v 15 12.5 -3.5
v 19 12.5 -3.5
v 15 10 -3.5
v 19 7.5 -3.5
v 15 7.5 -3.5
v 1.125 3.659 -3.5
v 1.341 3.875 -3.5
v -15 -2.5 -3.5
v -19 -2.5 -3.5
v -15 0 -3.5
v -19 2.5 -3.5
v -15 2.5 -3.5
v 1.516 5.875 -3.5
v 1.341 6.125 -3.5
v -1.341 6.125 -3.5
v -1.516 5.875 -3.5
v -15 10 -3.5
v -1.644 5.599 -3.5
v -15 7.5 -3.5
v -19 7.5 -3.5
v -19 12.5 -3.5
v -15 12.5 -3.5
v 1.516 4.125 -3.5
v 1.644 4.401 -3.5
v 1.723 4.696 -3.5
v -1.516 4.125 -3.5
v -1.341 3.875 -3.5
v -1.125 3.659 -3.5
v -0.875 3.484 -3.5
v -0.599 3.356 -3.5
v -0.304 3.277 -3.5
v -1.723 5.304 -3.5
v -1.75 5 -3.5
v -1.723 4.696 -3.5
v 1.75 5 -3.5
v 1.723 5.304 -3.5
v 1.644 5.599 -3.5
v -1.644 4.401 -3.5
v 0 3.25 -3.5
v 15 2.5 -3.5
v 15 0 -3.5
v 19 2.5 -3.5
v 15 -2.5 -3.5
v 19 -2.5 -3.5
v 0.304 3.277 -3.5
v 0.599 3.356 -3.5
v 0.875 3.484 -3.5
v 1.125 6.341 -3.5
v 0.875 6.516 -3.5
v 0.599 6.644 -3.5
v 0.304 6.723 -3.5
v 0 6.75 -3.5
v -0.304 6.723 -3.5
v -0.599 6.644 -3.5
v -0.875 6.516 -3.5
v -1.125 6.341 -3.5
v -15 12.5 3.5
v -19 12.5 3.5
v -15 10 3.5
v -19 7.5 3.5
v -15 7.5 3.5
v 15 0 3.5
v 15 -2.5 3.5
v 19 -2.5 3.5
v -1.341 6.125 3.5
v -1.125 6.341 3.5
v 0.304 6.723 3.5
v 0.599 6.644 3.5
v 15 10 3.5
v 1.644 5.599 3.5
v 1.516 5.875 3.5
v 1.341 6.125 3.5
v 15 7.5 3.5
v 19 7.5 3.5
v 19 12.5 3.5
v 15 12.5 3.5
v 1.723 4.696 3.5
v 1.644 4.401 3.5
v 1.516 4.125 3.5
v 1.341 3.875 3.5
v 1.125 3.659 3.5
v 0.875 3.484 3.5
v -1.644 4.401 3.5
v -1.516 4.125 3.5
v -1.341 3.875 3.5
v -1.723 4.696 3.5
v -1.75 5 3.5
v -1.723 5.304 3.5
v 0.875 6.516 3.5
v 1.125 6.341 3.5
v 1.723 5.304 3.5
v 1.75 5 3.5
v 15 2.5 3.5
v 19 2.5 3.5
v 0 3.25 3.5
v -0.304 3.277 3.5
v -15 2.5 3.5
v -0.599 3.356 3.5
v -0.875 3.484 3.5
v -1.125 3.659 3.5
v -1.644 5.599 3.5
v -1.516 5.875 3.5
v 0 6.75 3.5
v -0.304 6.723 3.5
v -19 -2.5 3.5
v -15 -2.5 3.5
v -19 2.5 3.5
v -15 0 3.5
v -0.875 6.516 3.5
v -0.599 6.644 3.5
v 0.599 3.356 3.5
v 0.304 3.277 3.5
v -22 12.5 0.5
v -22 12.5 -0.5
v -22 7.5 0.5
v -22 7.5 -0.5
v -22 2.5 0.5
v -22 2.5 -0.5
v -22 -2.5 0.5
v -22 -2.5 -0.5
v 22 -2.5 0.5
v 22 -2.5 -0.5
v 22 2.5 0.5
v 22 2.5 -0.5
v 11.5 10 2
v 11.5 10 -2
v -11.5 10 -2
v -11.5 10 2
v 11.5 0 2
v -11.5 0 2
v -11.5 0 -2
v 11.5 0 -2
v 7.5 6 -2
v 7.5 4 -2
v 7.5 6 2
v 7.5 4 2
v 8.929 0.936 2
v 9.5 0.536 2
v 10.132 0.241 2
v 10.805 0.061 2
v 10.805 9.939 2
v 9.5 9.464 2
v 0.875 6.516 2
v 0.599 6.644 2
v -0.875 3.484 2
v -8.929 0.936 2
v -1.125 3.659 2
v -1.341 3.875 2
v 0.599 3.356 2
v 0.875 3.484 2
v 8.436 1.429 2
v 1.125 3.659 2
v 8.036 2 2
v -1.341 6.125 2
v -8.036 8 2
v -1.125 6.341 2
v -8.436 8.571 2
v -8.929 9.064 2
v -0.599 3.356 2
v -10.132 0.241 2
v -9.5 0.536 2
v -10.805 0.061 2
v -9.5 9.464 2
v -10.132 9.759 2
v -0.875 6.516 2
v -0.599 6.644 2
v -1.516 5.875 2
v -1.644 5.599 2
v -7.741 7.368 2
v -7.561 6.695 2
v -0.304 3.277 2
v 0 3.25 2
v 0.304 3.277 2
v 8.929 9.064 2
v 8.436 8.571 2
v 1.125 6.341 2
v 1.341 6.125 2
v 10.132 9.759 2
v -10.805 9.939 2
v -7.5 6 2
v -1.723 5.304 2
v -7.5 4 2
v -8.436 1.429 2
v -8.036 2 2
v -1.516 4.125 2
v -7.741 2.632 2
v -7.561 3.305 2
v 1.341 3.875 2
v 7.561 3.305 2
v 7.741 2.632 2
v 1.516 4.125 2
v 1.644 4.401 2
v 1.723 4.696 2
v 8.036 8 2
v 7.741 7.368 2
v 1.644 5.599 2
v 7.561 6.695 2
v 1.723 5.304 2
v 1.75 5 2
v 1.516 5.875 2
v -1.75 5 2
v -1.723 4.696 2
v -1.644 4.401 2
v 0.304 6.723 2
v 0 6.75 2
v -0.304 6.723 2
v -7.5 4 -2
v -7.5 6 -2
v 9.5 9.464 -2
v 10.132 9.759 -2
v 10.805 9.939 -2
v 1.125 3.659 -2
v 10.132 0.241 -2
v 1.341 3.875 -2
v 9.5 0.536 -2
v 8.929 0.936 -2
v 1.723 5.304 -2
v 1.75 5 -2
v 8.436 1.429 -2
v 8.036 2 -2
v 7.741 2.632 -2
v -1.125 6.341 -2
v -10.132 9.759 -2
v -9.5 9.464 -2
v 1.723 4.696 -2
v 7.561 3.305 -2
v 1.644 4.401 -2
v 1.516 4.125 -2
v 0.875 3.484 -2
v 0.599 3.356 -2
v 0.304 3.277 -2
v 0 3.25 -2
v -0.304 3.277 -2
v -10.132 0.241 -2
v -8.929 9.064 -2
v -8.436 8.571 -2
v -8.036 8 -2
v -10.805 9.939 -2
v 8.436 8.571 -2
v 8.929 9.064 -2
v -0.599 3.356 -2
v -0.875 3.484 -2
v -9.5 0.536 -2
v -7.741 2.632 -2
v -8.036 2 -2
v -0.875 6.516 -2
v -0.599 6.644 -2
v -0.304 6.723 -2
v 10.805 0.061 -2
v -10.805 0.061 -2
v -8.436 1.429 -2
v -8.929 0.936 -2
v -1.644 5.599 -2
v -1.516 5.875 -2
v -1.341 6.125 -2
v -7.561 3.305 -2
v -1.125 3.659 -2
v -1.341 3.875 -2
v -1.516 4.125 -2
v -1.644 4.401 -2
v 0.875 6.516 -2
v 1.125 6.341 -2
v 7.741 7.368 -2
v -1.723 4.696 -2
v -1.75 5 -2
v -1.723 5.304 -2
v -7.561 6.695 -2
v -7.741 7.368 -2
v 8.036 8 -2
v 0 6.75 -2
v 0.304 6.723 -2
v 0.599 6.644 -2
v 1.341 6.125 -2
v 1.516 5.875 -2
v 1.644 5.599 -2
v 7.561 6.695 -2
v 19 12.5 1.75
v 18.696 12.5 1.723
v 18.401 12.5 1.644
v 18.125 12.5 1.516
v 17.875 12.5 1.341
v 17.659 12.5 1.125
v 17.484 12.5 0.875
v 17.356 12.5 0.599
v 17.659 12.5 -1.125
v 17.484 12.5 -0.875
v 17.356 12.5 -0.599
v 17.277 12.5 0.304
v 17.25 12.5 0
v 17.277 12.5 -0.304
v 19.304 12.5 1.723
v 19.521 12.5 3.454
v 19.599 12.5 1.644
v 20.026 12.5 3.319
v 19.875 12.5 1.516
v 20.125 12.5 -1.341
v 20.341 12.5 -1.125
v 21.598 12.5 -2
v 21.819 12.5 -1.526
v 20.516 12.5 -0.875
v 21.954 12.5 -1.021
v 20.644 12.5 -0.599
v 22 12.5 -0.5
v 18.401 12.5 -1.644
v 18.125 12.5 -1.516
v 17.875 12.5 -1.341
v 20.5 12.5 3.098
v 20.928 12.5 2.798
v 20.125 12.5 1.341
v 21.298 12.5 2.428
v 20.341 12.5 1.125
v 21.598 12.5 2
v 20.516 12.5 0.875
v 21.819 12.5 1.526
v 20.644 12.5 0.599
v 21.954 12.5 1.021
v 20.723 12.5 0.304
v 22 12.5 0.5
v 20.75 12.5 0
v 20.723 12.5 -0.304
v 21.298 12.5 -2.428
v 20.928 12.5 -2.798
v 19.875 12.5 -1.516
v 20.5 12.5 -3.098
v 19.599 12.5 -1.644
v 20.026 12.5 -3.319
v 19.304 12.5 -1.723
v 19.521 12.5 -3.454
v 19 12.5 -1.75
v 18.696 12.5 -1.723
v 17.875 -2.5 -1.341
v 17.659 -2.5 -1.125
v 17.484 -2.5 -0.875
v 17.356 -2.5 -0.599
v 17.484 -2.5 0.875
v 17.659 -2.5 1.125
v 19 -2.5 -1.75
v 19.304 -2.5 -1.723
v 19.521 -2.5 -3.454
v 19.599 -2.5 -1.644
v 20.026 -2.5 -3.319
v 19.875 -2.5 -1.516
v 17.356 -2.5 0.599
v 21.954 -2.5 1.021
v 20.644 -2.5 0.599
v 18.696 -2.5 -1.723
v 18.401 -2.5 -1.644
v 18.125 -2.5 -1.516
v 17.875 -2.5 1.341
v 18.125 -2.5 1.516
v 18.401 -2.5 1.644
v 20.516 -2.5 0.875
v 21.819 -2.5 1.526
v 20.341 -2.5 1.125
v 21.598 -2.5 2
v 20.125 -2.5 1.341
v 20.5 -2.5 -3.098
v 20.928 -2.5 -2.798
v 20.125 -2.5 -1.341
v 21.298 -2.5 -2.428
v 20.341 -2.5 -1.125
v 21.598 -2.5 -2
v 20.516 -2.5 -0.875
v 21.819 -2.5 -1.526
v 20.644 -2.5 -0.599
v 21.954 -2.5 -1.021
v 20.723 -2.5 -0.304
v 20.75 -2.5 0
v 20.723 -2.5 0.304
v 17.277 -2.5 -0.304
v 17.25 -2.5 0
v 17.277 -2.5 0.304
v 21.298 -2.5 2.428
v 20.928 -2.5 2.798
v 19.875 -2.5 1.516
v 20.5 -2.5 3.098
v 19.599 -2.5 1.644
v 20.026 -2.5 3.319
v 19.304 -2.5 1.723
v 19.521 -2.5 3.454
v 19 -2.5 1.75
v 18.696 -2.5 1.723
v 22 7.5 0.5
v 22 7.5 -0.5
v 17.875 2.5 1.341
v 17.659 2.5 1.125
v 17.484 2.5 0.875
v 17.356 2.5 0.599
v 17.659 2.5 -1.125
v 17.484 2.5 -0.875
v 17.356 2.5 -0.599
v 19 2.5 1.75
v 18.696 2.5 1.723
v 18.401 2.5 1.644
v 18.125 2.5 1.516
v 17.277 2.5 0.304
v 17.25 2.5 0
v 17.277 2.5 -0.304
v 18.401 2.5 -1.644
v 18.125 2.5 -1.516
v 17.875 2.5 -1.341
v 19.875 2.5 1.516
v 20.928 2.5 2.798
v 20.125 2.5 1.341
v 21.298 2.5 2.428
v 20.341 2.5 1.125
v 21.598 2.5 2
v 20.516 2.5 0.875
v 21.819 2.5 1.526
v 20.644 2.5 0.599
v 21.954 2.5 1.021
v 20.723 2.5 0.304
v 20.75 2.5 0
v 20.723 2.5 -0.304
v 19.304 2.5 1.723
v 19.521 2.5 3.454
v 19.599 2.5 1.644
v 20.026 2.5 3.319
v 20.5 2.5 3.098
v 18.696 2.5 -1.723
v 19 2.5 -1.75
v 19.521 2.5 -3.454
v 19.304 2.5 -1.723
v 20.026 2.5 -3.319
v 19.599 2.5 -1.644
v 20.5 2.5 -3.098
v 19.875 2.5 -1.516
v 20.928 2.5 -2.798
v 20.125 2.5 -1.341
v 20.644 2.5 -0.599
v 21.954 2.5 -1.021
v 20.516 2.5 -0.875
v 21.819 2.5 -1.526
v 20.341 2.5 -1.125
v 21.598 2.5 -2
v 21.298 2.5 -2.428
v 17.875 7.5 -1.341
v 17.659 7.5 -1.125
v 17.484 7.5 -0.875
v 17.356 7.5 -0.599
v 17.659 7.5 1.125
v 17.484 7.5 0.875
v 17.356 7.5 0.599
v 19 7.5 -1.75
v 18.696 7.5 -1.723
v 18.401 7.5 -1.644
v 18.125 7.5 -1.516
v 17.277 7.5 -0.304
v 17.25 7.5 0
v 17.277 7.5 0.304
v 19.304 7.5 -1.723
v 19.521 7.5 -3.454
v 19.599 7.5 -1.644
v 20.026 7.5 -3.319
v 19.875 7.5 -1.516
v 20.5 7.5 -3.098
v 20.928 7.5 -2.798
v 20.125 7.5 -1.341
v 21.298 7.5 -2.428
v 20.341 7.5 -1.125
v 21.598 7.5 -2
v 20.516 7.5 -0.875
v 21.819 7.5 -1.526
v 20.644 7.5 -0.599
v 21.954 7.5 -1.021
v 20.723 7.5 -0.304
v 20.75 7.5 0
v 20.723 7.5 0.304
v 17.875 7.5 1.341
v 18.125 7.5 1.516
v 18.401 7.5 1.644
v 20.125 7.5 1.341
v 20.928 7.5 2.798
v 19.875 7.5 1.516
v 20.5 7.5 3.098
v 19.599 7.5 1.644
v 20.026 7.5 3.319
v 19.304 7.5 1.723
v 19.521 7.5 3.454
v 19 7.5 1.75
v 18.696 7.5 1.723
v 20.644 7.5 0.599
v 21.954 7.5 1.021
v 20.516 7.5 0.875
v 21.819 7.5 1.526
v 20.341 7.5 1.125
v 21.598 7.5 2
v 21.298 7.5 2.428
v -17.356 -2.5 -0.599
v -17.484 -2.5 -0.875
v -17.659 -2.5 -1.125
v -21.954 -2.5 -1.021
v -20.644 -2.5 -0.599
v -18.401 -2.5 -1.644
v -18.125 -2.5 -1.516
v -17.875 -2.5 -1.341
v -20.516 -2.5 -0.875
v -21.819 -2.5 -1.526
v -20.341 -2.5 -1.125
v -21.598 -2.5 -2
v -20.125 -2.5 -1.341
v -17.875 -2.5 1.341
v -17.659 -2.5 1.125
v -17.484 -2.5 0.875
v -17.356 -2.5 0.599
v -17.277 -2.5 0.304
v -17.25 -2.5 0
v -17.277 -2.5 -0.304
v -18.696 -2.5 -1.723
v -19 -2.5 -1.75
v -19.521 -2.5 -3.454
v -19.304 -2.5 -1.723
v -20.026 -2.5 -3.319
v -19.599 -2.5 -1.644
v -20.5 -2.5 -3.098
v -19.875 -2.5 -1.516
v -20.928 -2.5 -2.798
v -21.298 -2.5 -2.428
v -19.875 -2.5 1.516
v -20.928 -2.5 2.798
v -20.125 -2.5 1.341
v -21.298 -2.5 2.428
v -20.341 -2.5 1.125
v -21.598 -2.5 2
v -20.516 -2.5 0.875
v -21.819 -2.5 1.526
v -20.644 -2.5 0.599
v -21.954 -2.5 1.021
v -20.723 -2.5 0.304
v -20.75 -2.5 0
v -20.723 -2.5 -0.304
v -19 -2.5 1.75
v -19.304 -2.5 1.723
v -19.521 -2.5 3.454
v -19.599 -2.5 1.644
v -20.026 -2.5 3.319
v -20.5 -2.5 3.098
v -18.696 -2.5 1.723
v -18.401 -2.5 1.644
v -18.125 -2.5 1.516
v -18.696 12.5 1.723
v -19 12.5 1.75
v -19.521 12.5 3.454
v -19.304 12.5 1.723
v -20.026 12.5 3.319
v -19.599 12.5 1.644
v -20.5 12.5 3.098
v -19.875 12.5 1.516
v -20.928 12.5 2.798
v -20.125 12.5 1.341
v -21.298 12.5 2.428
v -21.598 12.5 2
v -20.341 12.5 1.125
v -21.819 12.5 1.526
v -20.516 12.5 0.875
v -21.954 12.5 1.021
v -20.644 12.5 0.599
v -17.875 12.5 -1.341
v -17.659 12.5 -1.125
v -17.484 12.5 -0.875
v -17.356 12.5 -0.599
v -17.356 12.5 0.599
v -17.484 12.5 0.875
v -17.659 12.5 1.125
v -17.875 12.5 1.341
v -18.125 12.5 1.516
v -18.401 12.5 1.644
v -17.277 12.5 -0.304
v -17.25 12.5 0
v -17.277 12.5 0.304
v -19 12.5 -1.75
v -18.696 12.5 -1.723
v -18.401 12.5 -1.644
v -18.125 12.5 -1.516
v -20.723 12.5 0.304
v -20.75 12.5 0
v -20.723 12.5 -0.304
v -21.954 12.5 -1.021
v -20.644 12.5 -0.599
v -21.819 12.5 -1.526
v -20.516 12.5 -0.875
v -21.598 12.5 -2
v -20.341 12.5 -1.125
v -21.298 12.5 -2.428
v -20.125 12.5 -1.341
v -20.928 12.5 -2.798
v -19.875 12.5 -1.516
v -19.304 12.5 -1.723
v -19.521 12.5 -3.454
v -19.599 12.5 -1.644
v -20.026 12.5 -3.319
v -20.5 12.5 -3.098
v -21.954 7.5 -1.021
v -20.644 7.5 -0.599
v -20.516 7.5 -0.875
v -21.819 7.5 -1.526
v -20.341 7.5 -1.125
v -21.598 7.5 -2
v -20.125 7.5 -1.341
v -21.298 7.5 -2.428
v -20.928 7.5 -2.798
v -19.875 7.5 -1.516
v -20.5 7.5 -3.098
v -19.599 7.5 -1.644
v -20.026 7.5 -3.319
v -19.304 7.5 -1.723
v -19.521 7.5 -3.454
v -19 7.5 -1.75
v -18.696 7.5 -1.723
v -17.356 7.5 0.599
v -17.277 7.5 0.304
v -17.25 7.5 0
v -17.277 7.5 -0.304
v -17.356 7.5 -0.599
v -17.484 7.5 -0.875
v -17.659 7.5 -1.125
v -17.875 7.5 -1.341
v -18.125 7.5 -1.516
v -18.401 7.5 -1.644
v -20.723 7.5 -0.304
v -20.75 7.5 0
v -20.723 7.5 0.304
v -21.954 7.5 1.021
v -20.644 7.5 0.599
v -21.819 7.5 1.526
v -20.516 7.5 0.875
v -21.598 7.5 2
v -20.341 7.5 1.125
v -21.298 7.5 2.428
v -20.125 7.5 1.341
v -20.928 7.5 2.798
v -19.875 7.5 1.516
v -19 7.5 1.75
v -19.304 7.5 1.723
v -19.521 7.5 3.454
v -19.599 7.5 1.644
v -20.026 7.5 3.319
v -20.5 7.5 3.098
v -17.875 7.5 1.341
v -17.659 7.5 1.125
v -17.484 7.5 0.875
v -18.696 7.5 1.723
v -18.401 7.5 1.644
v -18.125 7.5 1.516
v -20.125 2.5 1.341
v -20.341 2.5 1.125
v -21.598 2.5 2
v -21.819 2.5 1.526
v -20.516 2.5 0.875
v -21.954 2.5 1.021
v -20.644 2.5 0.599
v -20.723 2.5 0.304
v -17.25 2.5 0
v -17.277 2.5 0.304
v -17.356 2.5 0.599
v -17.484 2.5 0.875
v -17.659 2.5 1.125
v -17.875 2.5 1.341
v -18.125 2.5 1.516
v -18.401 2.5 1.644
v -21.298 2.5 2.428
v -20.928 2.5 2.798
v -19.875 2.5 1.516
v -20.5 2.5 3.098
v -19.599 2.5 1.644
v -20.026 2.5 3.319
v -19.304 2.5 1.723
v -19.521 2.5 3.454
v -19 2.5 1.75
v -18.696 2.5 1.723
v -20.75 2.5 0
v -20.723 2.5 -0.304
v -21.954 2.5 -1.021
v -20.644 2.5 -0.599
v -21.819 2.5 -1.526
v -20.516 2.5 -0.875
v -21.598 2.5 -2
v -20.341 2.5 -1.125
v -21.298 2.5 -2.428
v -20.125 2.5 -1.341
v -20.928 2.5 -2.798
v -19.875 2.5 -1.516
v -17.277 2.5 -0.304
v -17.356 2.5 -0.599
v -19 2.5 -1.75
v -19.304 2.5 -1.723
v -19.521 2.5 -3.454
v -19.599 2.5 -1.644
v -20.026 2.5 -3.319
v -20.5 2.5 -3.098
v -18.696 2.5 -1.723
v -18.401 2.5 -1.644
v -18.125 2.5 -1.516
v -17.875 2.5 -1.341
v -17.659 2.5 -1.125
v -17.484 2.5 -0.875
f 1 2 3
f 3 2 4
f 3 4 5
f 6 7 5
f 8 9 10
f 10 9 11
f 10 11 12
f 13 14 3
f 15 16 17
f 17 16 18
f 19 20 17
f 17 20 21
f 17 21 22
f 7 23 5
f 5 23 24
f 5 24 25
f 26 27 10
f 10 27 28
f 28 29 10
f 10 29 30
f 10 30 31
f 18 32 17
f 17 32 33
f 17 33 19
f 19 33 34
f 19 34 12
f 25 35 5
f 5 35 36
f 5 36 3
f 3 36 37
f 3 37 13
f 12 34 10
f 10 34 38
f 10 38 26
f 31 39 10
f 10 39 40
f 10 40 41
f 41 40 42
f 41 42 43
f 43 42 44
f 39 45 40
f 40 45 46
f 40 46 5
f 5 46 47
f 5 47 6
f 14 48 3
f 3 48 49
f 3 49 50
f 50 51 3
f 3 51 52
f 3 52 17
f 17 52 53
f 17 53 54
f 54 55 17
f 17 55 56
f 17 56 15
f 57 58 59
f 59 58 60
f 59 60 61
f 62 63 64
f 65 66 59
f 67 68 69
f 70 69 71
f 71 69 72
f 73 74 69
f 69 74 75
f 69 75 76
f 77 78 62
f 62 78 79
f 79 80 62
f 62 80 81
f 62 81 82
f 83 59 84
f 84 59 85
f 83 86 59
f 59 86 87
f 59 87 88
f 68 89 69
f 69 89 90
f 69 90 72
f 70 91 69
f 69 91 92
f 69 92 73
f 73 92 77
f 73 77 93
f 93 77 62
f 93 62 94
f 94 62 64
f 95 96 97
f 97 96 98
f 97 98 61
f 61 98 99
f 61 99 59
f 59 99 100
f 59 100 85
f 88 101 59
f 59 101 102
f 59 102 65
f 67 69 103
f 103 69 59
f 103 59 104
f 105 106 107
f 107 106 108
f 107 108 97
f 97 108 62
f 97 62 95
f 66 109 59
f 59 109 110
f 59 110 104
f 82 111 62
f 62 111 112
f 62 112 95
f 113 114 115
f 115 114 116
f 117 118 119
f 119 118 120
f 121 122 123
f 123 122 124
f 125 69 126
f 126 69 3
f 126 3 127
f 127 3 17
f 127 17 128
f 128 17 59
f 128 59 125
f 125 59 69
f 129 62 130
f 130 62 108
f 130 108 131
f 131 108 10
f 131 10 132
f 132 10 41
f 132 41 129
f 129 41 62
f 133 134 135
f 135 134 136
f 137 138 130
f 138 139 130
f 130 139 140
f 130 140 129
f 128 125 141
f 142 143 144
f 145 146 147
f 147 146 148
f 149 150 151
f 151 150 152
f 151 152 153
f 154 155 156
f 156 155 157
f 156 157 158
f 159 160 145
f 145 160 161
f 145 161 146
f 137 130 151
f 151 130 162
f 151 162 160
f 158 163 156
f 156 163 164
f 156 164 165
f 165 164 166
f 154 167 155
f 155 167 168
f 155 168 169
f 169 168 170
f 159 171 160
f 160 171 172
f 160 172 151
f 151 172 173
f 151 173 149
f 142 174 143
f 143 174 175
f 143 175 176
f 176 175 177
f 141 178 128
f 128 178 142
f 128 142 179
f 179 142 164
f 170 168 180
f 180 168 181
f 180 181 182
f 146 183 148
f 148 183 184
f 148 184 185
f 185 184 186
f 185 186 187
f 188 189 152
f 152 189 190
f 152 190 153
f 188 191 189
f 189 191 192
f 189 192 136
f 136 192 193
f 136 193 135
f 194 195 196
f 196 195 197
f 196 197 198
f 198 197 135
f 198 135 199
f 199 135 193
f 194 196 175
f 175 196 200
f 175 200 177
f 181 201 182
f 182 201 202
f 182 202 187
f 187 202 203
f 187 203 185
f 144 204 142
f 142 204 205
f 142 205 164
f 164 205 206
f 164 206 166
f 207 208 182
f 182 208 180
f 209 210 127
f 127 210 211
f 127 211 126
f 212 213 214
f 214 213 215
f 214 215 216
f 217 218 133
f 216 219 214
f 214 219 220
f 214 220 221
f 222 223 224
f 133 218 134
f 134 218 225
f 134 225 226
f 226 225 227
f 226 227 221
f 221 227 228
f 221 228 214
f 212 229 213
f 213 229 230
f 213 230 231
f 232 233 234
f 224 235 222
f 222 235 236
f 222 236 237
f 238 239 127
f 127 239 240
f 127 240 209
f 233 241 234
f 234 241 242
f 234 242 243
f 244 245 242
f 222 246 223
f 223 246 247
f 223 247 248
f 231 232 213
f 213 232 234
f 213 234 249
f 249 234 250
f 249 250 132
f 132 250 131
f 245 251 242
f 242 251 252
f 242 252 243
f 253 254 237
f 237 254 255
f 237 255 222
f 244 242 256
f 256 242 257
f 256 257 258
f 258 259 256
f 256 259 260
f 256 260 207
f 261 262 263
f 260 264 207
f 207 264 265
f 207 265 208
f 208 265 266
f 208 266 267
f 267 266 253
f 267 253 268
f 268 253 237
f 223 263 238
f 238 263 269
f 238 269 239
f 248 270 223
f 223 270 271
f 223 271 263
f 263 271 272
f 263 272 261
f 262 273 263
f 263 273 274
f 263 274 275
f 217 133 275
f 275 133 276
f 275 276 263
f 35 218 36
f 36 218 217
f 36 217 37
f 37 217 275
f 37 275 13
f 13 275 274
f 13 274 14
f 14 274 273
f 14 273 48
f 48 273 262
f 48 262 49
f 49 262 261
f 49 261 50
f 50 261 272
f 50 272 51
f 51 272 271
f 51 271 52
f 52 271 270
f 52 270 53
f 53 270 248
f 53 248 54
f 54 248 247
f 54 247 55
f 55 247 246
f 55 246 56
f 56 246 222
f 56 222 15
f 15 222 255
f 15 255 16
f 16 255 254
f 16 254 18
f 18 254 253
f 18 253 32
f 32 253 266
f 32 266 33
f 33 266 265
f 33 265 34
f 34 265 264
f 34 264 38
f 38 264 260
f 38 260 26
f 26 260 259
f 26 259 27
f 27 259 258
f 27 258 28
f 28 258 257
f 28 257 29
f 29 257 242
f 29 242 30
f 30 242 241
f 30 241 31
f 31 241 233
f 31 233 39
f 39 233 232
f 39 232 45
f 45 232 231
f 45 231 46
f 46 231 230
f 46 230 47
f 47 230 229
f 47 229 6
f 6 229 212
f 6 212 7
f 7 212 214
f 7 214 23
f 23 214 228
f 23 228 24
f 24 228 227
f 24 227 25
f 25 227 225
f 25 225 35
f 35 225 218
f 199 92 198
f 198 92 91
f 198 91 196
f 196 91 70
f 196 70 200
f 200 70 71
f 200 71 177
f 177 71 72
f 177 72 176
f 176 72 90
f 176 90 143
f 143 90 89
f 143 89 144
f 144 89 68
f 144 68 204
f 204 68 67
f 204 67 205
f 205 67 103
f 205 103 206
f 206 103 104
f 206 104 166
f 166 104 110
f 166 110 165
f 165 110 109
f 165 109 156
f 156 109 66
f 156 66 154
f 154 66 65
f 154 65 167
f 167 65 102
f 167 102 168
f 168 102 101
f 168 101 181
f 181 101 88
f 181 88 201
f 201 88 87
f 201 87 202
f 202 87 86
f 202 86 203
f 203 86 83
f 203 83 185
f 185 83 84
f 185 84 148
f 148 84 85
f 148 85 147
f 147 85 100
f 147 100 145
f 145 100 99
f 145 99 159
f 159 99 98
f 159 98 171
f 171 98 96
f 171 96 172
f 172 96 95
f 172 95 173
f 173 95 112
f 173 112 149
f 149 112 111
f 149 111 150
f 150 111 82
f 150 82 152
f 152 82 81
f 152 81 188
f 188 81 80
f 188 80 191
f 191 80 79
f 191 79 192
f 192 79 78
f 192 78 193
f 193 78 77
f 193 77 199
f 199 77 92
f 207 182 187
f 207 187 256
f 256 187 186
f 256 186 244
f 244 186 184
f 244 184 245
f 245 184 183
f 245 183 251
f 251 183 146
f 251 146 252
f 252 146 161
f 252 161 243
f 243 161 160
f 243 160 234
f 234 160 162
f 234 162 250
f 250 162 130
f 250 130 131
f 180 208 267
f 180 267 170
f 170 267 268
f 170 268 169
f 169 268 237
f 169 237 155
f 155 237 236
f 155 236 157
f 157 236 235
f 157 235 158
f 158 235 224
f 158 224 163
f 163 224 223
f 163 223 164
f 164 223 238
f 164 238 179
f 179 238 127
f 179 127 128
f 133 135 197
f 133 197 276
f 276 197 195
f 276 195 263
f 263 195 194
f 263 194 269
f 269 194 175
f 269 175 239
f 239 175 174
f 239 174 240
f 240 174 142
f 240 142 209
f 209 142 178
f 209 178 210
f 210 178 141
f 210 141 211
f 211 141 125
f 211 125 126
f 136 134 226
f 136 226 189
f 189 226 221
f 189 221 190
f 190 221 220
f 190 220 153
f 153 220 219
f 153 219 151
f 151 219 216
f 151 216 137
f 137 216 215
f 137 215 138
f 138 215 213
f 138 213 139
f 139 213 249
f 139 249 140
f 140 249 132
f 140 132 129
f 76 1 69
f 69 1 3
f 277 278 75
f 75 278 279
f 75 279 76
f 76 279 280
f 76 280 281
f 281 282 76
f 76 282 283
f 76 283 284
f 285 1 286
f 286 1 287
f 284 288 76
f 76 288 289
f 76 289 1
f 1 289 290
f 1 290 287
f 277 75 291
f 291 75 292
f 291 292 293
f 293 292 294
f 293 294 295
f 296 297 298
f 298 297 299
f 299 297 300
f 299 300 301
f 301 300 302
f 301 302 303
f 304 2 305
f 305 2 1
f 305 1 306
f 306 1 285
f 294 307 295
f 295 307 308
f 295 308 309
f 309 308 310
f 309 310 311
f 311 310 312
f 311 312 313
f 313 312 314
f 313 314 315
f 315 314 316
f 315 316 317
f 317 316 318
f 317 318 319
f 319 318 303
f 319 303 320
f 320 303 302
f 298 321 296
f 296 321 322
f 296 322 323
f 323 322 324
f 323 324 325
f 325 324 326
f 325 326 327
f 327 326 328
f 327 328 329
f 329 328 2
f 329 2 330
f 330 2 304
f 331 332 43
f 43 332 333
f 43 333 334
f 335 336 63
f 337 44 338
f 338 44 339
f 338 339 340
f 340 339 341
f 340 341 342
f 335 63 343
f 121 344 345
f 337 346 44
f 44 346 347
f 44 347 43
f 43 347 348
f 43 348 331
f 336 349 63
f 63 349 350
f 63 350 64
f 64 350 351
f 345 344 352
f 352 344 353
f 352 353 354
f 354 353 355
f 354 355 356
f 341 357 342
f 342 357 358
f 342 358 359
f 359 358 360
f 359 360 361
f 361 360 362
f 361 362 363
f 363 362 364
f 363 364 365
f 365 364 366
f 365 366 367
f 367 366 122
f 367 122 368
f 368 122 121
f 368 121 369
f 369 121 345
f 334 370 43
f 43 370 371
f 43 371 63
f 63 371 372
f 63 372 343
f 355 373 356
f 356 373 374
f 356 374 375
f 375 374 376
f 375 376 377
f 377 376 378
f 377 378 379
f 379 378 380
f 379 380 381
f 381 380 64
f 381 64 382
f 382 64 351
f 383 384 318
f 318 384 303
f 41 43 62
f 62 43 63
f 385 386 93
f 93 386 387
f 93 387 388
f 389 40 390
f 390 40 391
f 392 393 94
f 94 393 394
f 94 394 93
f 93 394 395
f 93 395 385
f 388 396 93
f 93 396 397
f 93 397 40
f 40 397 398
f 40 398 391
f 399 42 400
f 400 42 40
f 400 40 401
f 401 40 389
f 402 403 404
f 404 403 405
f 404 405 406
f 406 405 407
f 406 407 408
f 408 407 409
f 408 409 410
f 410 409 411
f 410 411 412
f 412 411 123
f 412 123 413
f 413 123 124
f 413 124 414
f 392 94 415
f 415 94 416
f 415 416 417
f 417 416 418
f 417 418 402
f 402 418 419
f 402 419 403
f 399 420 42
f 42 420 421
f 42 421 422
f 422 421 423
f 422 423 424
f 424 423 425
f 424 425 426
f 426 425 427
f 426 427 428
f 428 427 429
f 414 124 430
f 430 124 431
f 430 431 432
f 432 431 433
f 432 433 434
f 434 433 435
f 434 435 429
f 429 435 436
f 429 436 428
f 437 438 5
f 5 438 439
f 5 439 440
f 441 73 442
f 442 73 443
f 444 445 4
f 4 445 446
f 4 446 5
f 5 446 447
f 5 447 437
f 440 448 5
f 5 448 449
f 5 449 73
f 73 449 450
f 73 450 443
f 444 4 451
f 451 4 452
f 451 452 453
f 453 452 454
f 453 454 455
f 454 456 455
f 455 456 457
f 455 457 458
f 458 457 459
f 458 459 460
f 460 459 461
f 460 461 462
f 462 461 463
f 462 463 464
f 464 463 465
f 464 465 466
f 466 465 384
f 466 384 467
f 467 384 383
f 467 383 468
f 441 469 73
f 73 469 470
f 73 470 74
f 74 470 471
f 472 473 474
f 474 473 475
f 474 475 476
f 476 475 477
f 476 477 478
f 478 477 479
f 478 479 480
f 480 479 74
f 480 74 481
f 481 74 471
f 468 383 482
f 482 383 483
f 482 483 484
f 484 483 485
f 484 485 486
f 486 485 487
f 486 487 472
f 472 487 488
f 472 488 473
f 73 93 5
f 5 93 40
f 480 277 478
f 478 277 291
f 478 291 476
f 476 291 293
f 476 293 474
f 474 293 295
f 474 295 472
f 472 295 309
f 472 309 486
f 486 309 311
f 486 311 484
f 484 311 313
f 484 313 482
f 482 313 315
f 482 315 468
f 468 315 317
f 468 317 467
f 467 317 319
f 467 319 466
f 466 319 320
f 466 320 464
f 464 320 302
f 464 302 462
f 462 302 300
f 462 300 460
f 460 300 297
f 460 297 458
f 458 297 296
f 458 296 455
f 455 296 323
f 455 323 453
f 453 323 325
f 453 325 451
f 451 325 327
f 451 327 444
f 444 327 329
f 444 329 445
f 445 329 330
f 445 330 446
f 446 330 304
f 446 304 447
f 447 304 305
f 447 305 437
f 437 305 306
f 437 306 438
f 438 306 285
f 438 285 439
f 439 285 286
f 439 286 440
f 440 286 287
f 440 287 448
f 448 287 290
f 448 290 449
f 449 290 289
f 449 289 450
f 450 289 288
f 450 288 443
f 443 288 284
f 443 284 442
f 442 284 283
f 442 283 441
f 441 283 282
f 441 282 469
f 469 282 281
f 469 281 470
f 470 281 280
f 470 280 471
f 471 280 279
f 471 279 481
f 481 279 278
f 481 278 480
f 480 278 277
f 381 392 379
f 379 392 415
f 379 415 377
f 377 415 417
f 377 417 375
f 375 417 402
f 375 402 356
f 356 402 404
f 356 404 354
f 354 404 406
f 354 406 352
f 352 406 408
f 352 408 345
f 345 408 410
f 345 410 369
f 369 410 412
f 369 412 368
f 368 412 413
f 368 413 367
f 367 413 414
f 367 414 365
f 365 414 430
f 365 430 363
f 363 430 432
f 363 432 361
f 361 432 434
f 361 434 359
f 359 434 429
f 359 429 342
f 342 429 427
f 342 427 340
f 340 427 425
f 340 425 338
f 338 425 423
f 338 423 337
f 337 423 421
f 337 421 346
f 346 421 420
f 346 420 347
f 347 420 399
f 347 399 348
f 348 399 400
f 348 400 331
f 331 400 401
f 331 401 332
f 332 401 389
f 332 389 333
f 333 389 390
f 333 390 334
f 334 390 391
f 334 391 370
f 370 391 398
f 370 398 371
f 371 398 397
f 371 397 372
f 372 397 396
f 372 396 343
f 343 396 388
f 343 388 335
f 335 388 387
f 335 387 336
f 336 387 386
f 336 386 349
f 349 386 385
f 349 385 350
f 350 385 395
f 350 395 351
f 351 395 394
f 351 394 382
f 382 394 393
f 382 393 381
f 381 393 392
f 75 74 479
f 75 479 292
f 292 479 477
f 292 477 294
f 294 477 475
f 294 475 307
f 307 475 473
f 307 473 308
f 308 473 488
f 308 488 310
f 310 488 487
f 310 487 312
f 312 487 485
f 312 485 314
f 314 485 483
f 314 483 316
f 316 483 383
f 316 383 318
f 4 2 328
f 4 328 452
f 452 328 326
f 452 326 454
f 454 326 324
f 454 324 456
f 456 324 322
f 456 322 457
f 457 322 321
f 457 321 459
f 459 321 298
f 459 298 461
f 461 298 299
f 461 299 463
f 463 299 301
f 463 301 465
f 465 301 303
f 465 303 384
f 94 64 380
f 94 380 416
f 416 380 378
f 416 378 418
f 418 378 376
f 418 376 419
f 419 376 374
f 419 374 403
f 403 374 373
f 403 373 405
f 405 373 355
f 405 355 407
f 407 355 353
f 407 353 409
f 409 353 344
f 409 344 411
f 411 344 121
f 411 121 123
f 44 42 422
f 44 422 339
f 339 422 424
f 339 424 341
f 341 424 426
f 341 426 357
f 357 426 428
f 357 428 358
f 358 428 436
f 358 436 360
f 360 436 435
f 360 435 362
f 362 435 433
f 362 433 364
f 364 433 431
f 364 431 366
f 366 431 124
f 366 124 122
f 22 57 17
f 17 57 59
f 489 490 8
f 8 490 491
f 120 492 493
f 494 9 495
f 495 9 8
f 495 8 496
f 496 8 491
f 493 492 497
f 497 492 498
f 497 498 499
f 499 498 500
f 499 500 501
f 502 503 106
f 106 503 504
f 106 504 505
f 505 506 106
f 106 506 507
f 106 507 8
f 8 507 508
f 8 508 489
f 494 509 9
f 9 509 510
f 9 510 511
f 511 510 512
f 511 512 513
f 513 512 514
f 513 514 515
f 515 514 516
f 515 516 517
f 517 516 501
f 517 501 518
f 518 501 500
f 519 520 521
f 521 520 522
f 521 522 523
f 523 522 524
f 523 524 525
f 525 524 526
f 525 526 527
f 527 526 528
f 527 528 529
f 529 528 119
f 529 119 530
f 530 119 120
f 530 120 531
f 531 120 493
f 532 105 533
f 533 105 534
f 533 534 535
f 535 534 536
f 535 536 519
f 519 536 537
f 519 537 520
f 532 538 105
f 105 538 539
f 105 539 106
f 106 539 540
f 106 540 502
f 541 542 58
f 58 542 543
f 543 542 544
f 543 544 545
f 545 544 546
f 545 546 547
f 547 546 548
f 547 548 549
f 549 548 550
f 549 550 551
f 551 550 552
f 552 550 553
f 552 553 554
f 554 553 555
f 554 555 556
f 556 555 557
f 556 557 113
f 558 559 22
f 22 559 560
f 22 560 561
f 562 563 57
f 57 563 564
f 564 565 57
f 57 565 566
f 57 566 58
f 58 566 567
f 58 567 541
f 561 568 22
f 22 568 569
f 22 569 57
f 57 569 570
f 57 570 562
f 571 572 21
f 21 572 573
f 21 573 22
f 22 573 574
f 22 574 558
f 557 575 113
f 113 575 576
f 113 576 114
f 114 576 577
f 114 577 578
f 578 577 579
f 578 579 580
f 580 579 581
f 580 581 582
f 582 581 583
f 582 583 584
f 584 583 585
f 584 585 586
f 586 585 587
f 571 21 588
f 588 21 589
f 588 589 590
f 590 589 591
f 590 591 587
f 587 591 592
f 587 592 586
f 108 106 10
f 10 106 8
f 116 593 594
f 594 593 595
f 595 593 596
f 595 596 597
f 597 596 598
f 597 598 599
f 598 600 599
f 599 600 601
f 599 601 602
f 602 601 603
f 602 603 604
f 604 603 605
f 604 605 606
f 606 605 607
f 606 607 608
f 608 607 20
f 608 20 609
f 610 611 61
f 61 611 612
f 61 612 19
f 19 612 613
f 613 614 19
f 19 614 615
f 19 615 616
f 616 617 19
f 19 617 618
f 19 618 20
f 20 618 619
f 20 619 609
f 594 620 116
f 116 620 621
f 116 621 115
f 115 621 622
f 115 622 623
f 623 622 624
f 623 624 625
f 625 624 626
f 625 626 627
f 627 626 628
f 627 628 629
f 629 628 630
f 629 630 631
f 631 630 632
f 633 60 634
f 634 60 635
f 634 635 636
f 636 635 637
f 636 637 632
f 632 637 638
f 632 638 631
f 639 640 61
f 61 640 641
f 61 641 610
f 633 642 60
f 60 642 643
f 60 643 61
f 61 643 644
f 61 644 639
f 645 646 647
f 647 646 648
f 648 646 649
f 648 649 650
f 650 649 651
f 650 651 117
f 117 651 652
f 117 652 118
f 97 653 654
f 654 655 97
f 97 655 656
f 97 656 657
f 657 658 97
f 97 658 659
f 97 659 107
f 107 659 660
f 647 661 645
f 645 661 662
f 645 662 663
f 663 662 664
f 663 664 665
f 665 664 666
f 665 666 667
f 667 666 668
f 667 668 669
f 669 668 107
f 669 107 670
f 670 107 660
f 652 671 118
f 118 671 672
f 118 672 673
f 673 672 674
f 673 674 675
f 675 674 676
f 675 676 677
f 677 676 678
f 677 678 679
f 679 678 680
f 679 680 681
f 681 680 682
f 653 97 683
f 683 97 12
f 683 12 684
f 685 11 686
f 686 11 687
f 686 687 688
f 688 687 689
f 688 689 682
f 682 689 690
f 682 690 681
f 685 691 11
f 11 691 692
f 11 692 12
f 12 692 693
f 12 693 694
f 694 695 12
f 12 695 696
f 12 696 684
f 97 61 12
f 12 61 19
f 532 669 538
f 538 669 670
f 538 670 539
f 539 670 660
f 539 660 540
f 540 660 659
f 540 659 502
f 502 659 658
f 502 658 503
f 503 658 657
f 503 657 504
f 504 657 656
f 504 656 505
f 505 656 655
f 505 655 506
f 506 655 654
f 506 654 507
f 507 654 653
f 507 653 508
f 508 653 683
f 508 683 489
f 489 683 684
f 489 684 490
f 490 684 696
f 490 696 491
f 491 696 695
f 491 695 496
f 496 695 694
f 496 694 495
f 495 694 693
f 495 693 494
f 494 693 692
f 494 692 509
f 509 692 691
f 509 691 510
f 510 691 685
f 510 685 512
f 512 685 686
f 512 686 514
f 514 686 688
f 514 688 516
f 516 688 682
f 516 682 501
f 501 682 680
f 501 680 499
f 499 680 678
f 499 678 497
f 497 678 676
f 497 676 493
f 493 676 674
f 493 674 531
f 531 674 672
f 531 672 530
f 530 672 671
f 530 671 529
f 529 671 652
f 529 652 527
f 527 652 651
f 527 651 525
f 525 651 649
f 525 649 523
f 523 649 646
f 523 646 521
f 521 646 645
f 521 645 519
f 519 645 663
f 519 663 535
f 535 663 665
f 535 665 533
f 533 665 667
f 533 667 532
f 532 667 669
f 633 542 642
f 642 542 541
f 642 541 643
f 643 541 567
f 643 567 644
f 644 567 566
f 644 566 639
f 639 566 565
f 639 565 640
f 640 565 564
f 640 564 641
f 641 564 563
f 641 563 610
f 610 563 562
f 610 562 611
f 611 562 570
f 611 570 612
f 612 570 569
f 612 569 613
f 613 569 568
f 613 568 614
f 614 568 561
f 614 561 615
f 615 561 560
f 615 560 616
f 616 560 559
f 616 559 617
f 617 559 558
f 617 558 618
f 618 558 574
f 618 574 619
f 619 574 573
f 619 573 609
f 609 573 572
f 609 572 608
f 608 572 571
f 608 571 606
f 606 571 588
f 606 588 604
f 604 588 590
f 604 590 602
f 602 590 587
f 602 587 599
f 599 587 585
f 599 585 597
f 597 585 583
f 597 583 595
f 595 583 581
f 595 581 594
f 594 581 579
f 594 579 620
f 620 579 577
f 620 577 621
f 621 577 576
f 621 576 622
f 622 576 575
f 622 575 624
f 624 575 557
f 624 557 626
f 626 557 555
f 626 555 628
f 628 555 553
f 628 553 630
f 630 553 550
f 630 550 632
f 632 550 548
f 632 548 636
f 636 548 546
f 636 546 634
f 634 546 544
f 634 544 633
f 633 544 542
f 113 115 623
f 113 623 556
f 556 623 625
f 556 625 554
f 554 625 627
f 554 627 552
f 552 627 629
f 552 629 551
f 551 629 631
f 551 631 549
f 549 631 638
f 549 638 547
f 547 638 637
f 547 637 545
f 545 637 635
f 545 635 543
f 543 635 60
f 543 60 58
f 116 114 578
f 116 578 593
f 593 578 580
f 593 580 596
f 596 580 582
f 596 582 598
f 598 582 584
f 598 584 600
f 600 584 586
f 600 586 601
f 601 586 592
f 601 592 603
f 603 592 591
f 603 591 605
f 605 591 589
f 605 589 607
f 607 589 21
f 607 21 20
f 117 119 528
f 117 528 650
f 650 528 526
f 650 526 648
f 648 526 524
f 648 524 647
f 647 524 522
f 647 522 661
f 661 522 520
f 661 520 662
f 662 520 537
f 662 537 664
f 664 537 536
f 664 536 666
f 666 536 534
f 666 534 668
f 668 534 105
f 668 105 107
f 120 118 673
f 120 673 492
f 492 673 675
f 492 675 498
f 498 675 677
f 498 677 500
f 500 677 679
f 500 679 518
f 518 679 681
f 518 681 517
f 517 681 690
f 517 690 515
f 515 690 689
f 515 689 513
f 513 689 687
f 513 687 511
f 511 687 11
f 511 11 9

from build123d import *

# Parameters (mm, degrees)
SKETCH1_W            = 30
SKETCH1_H            = 7
BOSS_EXTRUDE1_DEPTH  = 10
SKETCH2_W            = 15
SKETCH2_H            = 4
CUT_EXTRUDE1_DEPTH   = 10
SKETCH3_R            = 1.75
CUT_EXTRUDE2_DEPTH   = 10
FILLET1_R            = 4
SKETCH4_W            = 7
SKETCH4_H            = 15
BOSS_EXTRUDE2_DEPTH  = 7
SKETCH5_W            = 7
SKETCH5_H            = 5
CUT_EXTRUDE3_DEPTH   = 7
SKETCH6_R            = 1.75
CUT_EXTRUDE4_DEPTH   = 16
FILLET2_R            = 3
FILLET2_OF_MIRROR1_R = 3


with BuildPart() as part:
    # Sketch1 → Boss-Extrude1 (new body)
    with BuildSketch(Plane(origin=(0, 0, 0), x_dir=(1, 0, 0), z_dir=(0, 1, 0))):
        Rectangle(SKETCH1_W, SKETCH1_H)
    extrude(amount=BOSS_EXTRUDE1_DEPTH)

    # Sketch2 → Cut-Extrude1 (cut)
    with BuildSketch(Plane(origin=(0, 10, 0), x_dir=(1, 0, 0), z_dir=(0, 1, 0))):
        Rectangle(SKETCH2_W, SKETCH2_H)
    extrude(amount=-CUT_EXTRUDE1_DEPTH, mode=Mode.SUBTRACT)

    # Sketch3 → Cut-Extrude2 (cut)
    with BuildSketch(Plane.XY.offset(3.5)):
        with Locations((0, 5)):
            Circle(SKETCH3_R)
    extrude(amount=-CUT_EXTRUDE2_DEPTH, mode=Mode.SUBTRACT)

    # Fillet1
    fillet1_edges = [part.edges().sort_by_distance(p)[0] for p in [
        (7.5, 0, 0),
        (-7.5, 0, 0),
        (7.5, 10, 0),
        (-7.5, 10, 0),
    ]]
    fillet(fillet1_edges, radius=FILLET1_R)

    # Sketch4 → Boss-Extrude2 (add)
    with BuildSketch(Plane(origin=(15, 0, 0), x_dir=(0, 0, -1), z_dir=(1, 0, 0))):
        with Locations((0, 5)):
            Rectangle(SKETCH4_W, SKETCH4_H)
    boss_extrude2 = extrude(amount=BOSS_EXTRUDE2_DEPTH)

    # Sketch5 → Cut-Extrude3 (cut)
    with BuildSketch(Plane(origin=(22, 0, 0), x_dir=(0, 0, -1), z_dir=(1, 0, 0))):
        with Locations((0, 5)):
            Rectangle(SKETCH5_W, SKETCH5_H)
    cut_extrude3 = extrude(amount=-CUT_EXTRUDE3_DEPTH, mode=Mode.SUBTRACT)

    # Sketch6 → Cut-Extrude4 (cut, through all)
    with BuildSketch(Plane(origin=(0, 12.5, 0), x_dir=(1, 0, 0), z_dir=(0, 1, 0))):
        with Locations((19, 0)):
            Circle(SKETCH6_R)
    cut_extrude4 = extrude(amount=-CUT_EXTRUDE4_DEPTH, mode=Mode.SUBTRACT)

    # Fillet2
    fillet2_edges = [part.edges().sort_by_distance(p)[0] for p in [
        (22, 0, -3.5),
        (22, 10, 3.5),
        (22, 10, -3.5),
        (22, 0, 3.5),
    ]]
    fillet(fillet2_edges, radius=FILLET2_R)

    # Mirror1: Boss-Extrude2, Cut-Extrude3, Cut-Extrude4 across plane
    add(boss_extrude2.mirror(Plane(origin=(0, 0, 0), x_dir=(0, 0, 1), z_dir=(1, 0, 0))))
    add(cut_extrude3.mirror(Plane(origin=(0, 0, 0), x_dir=(0, 0, 1), z_dir=(1, 0, 0))), mode=Mode.SUBTRACT)
    add(cut_extrude4.mirror(Plane(origin=(0, 0, 0), x_dir=(0, 0, 1), z_dir=(1, 0, 0))), mode=Mode.SUBTRACT)

    # Fillet2 of Mirror1
    fillet2_of_mirror1_edges = [part.edges().sort_by_distance(p)[0] for p in [
        (-22, 0, -3.5),
        (-22, 10, 3.5),
        (-22, 10, -3.5),
        (-22, 0, 3.5),
    ]]
    fillet(fillet2_of_mirror1_edges, radius=FILLET2_OF_MIRROR1_R)


solid = part.part
